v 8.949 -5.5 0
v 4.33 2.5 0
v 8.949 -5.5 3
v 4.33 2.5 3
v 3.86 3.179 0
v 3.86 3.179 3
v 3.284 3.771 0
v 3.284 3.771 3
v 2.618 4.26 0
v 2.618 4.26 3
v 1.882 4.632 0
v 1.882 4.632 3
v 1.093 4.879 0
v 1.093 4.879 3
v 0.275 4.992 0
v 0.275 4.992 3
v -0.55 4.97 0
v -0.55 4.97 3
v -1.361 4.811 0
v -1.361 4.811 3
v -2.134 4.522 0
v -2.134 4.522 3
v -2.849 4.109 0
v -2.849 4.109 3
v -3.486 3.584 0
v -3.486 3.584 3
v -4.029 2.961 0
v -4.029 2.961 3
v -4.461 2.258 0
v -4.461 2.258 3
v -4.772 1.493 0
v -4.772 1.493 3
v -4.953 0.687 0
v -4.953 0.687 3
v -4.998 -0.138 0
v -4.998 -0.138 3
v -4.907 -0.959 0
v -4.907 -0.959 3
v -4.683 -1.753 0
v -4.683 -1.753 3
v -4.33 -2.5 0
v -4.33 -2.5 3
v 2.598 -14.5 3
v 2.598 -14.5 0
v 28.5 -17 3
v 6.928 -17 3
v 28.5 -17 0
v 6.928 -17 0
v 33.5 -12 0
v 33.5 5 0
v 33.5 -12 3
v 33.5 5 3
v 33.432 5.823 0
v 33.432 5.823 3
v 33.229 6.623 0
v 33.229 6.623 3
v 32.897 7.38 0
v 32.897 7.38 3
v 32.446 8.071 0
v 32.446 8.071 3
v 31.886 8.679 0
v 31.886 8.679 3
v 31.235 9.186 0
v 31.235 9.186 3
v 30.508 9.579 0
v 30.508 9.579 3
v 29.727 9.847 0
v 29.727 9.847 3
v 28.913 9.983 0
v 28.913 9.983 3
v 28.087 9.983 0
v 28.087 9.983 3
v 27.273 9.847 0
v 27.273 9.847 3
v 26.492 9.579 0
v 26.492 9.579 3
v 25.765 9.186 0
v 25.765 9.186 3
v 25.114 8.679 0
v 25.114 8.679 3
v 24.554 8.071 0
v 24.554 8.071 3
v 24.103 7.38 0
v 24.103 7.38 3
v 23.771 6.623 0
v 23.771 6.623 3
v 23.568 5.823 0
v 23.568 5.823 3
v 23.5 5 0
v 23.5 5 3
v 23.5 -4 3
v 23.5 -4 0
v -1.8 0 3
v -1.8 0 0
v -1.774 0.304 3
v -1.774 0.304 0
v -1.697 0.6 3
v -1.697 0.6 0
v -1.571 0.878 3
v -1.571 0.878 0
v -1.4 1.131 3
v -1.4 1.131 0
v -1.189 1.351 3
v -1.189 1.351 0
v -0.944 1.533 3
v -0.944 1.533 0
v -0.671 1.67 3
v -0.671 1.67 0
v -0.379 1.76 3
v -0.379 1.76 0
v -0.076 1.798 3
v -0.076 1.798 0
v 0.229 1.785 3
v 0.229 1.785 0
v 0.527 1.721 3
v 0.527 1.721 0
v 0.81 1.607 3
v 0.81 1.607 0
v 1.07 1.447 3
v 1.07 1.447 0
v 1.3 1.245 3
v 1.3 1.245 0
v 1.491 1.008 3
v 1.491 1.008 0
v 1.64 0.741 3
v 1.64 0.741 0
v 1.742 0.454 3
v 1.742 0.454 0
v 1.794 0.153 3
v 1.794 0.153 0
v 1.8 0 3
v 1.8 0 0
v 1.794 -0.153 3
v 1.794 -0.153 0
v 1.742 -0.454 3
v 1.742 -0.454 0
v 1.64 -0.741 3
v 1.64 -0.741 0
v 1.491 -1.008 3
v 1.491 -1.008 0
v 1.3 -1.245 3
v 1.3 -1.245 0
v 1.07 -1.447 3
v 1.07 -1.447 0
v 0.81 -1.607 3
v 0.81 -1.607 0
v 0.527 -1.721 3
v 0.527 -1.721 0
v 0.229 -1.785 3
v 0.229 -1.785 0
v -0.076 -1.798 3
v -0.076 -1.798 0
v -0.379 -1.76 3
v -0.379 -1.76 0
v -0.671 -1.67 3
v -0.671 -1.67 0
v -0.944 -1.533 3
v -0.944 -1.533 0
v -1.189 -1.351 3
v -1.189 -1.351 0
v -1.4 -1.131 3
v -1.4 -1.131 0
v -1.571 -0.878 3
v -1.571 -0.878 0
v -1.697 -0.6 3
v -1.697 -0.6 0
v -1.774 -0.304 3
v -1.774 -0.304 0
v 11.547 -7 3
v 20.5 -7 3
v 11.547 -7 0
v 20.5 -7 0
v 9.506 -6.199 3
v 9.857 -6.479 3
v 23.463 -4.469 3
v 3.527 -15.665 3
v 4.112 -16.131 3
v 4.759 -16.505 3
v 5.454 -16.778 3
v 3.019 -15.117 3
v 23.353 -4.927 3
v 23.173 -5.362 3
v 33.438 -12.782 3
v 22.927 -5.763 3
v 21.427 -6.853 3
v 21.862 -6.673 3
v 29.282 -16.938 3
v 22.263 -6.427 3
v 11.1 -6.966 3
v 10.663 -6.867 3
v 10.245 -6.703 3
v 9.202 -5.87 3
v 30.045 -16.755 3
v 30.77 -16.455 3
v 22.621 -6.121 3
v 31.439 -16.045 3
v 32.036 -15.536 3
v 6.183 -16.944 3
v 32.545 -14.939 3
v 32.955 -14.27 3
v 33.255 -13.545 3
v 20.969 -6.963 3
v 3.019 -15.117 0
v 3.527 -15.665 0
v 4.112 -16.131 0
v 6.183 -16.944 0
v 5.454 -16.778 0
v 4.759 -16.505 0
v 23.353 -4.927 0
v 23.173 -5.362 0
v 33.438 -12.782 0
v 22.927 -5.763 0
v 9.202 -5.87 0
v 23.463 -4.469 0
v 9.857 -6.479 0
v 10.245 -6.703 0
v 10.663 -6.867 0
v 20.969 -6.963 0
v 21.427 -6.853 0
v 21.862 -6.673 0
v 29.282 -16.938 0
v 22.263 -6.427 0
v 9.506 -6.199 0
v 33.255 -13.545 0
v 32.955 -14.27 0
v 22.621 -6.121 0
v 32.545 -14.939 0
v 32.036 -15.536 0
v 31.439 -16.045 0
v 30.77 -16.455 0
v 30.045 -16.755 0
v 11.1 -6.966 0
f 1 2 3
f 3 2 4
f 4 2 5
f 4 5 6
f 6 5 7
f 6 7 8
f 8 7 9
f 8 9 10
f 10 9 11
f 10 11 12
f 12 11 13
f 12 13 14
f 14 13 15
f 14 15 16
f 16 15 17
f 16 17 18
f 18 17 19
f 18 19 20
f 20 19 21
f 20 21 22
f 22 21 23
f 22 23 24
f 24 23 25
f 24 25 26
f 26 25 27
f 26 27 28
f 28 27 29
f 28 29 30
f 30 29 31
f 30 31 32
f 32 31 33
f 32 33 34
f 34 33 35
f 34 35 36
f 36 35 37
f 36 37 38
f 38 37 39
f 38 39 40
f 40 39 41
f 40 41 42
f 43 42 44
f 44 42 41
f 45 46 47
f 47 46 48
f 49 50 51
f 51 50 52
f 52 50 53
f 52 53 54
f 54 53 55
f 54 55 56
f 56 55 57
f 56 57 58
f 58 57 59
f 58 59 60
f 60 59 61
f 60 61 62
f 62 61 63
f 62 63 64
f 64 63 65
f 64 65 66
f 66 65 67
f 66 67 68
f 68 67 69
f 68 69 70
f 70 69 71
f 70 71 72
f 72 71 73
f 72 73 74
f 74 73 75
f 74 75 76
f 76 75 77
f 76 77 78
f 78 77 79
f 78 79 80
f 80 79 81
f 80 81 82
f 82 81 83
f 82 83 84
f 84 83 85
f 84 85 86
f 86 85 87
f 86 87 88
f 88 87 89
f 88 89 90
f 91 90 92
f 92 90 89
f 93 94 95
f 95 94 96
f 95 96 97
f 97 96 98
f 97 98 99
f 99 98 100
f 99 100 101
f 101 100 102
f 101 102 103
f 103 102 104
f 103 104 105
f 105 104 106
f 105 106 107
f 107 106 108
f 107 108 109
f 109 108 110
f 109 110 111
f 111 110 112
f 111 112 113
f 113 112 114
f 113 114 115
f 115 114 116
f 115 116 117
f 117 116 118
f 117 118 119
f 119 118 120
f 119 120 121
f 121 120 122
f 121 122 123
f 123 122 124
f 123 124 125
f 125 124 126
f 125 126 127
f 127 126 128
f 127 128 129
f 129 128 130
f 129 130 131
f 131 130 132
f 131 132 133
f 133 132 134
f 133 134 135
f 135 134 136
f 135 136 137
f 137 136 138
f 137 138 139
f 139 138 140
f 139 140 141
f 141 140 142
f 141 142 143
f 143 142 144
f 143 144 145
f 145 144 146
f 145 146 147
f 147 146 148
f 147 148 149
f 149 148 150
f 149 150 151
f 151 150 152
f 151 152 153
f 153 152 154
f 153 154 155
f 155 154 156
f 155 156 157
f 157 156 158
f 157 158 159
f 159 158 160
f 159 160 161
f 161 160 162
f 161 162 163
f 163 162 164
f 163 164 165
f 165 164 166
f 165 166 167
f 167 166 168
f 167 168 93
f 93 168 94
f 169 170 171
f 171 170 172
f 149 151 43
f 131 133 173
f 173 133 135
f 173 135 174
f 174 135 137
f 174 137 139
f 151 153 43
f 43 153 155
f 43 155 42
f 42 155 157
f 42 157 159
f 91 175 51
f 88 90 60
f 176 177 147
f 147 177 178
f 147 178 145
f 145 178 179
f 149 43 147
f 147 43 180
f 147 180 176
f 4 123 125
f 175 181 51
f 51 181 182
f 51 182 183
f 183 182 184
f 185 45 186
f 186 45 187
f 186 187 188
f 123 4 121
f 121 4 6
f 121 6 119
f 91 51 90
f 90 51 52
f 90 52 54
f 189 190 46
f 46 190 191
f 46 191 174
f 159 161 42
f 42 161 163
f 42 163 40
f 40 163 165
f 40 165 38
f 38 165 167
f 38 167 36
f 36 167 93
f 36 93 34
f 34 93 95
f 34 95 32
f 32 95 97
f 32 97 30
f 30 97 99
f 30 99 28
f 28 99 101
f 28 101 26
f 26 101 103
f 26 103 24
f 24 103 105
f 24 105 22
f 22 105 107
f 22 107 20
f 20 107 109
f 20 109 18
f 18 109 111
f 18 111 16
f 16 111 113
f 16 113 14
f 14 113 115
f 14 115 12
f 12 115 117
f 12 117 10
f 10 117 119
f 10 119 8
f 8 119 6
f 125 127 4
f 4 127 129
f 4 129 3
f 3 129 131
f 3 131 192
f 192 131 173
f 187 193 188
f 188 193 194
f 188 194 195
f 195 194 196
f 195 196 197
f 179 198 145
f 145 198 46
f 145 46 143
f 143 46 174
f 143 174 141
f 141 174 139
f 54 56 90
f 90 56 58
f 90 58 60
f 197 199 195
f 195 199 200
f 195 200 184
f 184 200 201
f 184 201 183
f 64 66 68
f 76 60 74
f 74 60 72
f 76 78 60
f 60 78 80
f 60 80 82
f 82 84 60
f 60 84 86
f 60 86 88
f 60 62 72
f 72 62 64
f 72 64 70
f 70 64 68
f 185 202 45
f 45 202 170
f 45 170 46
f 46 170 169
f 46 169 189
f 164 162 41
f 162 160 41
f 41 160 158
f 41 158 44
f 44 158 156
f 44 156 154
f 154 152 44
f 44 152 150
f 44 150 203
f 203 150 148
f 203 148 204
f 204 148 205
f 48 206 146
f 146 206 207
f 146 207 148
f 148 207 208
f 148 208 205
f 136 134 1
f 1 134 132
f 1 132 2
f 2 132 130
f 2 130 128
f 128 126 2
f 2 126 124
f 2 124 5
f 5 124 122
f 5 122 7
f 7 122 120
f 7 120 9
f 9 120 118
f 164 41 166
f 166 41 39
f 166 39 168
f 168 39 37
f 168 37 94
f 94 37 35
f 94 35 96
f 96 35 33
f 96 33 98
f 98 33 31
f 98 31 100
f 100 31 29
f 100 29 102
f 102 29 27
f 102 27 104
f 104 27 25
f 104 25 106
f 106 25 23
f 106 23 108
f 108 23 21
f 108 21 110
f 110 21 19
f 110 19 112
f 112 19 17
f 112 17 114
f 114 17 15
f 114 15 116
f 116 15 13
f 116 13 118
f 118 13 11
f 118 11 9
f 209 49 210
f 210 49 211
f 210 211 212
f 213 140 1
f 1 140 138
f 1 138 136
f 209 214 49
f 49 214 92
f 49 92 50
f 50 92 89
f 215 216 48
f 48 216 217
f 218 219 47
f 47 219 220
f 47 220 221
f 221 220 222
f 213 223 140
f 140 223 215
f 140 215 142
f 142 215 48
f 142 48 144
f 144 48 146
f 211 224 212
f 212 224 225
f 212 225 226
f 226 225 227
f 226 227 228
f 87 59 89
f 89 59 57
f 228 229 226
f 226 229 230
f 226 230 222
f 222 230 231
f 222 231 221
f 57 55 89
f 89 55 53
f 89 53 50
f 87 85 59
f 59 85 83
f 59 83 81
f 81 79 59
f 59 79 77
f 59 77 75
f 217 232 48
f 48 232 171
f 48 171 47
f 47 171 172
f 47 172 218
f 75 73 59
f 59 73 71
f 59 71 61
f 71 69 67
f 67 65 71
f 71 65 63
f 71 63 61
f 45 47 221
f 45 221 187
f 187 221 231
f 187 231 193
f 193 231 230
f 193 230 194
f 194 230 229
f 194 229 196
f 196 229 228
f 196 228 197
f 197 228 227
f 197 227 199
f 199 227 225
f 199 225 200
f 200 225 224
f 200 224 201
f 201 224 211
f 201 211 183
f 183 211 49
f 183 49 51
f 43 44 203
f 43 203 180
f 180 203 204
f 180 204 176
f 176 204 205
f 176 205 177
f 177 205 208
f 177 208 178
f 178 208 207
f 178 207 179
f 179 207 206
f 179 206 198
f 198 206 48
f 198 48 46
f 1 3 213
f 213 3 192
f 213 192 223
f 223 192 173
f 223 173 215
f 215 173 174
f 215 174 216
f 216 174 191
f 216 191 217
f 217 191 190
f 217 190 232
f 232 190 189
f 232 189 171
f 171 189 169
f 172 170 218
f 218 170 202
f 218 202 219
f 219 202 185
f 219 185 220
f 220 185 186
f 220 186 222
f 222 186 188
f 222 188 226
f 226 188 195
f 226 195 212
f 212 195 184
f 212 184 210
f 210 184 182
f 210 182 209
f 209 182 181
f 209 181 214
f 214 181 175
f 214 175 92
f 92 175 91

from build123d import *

# Parameters (mm, degrees)
SKETCH1_R           = 1.8
BOSS_EXTRUDE1_DEPTH = 3
FILLET2_R           = 5
FILLET3_R           = 3


with BuildPart() as part:
    # Sketch1 → Boss-Extrude1 (new body)
    with BuildSketch(Plane.XY):
        with BuildLine():
            Line((4.330127019, 2.5), (9.814954576, -7))
            Line((9.814954576, -7), (23.5, -7))
            Line((23.5, -7), (23.5, 5))
            ThreePointArc((23.5, 5), (28.5, 10), (33.5, 5))
            Line((33.5, 5), (33.5, -17))
            Line((33.5, -17), (4.041451884, -17))
            Line((4.041451884, -17), (-4.330127019, -2.5))
            ThreePointArc((-4.330127019, -2.5), (-2.5, 4.330127019), (4.330127019, 2.5))
        make_face()
        Circle(SKETCH1_R, mode=Mode.SUBTRACT)
    extrude(amount=BOSS_EXTRUDE1_DEPTH)

    # Fillet2
    fillet2_edges = [part.edges().sort_by_distance(p)[0] for p in [
        (33.5, -17, 1.5),
        (4.041451884, -17, 1.5),
    ]]
    fillet(fillet2_edges, radius=FILLET2_R)

    # Fillet3
    fillet3_edges = [part.edges().sort_by_distance(p)[0] for p in [
        (9.814954576, -7, 1.5),
        (23.5, -7, 1.5),
    ]]
    fillet(fillet3_edges, radius=FILLET3_R)


solid = part.part
